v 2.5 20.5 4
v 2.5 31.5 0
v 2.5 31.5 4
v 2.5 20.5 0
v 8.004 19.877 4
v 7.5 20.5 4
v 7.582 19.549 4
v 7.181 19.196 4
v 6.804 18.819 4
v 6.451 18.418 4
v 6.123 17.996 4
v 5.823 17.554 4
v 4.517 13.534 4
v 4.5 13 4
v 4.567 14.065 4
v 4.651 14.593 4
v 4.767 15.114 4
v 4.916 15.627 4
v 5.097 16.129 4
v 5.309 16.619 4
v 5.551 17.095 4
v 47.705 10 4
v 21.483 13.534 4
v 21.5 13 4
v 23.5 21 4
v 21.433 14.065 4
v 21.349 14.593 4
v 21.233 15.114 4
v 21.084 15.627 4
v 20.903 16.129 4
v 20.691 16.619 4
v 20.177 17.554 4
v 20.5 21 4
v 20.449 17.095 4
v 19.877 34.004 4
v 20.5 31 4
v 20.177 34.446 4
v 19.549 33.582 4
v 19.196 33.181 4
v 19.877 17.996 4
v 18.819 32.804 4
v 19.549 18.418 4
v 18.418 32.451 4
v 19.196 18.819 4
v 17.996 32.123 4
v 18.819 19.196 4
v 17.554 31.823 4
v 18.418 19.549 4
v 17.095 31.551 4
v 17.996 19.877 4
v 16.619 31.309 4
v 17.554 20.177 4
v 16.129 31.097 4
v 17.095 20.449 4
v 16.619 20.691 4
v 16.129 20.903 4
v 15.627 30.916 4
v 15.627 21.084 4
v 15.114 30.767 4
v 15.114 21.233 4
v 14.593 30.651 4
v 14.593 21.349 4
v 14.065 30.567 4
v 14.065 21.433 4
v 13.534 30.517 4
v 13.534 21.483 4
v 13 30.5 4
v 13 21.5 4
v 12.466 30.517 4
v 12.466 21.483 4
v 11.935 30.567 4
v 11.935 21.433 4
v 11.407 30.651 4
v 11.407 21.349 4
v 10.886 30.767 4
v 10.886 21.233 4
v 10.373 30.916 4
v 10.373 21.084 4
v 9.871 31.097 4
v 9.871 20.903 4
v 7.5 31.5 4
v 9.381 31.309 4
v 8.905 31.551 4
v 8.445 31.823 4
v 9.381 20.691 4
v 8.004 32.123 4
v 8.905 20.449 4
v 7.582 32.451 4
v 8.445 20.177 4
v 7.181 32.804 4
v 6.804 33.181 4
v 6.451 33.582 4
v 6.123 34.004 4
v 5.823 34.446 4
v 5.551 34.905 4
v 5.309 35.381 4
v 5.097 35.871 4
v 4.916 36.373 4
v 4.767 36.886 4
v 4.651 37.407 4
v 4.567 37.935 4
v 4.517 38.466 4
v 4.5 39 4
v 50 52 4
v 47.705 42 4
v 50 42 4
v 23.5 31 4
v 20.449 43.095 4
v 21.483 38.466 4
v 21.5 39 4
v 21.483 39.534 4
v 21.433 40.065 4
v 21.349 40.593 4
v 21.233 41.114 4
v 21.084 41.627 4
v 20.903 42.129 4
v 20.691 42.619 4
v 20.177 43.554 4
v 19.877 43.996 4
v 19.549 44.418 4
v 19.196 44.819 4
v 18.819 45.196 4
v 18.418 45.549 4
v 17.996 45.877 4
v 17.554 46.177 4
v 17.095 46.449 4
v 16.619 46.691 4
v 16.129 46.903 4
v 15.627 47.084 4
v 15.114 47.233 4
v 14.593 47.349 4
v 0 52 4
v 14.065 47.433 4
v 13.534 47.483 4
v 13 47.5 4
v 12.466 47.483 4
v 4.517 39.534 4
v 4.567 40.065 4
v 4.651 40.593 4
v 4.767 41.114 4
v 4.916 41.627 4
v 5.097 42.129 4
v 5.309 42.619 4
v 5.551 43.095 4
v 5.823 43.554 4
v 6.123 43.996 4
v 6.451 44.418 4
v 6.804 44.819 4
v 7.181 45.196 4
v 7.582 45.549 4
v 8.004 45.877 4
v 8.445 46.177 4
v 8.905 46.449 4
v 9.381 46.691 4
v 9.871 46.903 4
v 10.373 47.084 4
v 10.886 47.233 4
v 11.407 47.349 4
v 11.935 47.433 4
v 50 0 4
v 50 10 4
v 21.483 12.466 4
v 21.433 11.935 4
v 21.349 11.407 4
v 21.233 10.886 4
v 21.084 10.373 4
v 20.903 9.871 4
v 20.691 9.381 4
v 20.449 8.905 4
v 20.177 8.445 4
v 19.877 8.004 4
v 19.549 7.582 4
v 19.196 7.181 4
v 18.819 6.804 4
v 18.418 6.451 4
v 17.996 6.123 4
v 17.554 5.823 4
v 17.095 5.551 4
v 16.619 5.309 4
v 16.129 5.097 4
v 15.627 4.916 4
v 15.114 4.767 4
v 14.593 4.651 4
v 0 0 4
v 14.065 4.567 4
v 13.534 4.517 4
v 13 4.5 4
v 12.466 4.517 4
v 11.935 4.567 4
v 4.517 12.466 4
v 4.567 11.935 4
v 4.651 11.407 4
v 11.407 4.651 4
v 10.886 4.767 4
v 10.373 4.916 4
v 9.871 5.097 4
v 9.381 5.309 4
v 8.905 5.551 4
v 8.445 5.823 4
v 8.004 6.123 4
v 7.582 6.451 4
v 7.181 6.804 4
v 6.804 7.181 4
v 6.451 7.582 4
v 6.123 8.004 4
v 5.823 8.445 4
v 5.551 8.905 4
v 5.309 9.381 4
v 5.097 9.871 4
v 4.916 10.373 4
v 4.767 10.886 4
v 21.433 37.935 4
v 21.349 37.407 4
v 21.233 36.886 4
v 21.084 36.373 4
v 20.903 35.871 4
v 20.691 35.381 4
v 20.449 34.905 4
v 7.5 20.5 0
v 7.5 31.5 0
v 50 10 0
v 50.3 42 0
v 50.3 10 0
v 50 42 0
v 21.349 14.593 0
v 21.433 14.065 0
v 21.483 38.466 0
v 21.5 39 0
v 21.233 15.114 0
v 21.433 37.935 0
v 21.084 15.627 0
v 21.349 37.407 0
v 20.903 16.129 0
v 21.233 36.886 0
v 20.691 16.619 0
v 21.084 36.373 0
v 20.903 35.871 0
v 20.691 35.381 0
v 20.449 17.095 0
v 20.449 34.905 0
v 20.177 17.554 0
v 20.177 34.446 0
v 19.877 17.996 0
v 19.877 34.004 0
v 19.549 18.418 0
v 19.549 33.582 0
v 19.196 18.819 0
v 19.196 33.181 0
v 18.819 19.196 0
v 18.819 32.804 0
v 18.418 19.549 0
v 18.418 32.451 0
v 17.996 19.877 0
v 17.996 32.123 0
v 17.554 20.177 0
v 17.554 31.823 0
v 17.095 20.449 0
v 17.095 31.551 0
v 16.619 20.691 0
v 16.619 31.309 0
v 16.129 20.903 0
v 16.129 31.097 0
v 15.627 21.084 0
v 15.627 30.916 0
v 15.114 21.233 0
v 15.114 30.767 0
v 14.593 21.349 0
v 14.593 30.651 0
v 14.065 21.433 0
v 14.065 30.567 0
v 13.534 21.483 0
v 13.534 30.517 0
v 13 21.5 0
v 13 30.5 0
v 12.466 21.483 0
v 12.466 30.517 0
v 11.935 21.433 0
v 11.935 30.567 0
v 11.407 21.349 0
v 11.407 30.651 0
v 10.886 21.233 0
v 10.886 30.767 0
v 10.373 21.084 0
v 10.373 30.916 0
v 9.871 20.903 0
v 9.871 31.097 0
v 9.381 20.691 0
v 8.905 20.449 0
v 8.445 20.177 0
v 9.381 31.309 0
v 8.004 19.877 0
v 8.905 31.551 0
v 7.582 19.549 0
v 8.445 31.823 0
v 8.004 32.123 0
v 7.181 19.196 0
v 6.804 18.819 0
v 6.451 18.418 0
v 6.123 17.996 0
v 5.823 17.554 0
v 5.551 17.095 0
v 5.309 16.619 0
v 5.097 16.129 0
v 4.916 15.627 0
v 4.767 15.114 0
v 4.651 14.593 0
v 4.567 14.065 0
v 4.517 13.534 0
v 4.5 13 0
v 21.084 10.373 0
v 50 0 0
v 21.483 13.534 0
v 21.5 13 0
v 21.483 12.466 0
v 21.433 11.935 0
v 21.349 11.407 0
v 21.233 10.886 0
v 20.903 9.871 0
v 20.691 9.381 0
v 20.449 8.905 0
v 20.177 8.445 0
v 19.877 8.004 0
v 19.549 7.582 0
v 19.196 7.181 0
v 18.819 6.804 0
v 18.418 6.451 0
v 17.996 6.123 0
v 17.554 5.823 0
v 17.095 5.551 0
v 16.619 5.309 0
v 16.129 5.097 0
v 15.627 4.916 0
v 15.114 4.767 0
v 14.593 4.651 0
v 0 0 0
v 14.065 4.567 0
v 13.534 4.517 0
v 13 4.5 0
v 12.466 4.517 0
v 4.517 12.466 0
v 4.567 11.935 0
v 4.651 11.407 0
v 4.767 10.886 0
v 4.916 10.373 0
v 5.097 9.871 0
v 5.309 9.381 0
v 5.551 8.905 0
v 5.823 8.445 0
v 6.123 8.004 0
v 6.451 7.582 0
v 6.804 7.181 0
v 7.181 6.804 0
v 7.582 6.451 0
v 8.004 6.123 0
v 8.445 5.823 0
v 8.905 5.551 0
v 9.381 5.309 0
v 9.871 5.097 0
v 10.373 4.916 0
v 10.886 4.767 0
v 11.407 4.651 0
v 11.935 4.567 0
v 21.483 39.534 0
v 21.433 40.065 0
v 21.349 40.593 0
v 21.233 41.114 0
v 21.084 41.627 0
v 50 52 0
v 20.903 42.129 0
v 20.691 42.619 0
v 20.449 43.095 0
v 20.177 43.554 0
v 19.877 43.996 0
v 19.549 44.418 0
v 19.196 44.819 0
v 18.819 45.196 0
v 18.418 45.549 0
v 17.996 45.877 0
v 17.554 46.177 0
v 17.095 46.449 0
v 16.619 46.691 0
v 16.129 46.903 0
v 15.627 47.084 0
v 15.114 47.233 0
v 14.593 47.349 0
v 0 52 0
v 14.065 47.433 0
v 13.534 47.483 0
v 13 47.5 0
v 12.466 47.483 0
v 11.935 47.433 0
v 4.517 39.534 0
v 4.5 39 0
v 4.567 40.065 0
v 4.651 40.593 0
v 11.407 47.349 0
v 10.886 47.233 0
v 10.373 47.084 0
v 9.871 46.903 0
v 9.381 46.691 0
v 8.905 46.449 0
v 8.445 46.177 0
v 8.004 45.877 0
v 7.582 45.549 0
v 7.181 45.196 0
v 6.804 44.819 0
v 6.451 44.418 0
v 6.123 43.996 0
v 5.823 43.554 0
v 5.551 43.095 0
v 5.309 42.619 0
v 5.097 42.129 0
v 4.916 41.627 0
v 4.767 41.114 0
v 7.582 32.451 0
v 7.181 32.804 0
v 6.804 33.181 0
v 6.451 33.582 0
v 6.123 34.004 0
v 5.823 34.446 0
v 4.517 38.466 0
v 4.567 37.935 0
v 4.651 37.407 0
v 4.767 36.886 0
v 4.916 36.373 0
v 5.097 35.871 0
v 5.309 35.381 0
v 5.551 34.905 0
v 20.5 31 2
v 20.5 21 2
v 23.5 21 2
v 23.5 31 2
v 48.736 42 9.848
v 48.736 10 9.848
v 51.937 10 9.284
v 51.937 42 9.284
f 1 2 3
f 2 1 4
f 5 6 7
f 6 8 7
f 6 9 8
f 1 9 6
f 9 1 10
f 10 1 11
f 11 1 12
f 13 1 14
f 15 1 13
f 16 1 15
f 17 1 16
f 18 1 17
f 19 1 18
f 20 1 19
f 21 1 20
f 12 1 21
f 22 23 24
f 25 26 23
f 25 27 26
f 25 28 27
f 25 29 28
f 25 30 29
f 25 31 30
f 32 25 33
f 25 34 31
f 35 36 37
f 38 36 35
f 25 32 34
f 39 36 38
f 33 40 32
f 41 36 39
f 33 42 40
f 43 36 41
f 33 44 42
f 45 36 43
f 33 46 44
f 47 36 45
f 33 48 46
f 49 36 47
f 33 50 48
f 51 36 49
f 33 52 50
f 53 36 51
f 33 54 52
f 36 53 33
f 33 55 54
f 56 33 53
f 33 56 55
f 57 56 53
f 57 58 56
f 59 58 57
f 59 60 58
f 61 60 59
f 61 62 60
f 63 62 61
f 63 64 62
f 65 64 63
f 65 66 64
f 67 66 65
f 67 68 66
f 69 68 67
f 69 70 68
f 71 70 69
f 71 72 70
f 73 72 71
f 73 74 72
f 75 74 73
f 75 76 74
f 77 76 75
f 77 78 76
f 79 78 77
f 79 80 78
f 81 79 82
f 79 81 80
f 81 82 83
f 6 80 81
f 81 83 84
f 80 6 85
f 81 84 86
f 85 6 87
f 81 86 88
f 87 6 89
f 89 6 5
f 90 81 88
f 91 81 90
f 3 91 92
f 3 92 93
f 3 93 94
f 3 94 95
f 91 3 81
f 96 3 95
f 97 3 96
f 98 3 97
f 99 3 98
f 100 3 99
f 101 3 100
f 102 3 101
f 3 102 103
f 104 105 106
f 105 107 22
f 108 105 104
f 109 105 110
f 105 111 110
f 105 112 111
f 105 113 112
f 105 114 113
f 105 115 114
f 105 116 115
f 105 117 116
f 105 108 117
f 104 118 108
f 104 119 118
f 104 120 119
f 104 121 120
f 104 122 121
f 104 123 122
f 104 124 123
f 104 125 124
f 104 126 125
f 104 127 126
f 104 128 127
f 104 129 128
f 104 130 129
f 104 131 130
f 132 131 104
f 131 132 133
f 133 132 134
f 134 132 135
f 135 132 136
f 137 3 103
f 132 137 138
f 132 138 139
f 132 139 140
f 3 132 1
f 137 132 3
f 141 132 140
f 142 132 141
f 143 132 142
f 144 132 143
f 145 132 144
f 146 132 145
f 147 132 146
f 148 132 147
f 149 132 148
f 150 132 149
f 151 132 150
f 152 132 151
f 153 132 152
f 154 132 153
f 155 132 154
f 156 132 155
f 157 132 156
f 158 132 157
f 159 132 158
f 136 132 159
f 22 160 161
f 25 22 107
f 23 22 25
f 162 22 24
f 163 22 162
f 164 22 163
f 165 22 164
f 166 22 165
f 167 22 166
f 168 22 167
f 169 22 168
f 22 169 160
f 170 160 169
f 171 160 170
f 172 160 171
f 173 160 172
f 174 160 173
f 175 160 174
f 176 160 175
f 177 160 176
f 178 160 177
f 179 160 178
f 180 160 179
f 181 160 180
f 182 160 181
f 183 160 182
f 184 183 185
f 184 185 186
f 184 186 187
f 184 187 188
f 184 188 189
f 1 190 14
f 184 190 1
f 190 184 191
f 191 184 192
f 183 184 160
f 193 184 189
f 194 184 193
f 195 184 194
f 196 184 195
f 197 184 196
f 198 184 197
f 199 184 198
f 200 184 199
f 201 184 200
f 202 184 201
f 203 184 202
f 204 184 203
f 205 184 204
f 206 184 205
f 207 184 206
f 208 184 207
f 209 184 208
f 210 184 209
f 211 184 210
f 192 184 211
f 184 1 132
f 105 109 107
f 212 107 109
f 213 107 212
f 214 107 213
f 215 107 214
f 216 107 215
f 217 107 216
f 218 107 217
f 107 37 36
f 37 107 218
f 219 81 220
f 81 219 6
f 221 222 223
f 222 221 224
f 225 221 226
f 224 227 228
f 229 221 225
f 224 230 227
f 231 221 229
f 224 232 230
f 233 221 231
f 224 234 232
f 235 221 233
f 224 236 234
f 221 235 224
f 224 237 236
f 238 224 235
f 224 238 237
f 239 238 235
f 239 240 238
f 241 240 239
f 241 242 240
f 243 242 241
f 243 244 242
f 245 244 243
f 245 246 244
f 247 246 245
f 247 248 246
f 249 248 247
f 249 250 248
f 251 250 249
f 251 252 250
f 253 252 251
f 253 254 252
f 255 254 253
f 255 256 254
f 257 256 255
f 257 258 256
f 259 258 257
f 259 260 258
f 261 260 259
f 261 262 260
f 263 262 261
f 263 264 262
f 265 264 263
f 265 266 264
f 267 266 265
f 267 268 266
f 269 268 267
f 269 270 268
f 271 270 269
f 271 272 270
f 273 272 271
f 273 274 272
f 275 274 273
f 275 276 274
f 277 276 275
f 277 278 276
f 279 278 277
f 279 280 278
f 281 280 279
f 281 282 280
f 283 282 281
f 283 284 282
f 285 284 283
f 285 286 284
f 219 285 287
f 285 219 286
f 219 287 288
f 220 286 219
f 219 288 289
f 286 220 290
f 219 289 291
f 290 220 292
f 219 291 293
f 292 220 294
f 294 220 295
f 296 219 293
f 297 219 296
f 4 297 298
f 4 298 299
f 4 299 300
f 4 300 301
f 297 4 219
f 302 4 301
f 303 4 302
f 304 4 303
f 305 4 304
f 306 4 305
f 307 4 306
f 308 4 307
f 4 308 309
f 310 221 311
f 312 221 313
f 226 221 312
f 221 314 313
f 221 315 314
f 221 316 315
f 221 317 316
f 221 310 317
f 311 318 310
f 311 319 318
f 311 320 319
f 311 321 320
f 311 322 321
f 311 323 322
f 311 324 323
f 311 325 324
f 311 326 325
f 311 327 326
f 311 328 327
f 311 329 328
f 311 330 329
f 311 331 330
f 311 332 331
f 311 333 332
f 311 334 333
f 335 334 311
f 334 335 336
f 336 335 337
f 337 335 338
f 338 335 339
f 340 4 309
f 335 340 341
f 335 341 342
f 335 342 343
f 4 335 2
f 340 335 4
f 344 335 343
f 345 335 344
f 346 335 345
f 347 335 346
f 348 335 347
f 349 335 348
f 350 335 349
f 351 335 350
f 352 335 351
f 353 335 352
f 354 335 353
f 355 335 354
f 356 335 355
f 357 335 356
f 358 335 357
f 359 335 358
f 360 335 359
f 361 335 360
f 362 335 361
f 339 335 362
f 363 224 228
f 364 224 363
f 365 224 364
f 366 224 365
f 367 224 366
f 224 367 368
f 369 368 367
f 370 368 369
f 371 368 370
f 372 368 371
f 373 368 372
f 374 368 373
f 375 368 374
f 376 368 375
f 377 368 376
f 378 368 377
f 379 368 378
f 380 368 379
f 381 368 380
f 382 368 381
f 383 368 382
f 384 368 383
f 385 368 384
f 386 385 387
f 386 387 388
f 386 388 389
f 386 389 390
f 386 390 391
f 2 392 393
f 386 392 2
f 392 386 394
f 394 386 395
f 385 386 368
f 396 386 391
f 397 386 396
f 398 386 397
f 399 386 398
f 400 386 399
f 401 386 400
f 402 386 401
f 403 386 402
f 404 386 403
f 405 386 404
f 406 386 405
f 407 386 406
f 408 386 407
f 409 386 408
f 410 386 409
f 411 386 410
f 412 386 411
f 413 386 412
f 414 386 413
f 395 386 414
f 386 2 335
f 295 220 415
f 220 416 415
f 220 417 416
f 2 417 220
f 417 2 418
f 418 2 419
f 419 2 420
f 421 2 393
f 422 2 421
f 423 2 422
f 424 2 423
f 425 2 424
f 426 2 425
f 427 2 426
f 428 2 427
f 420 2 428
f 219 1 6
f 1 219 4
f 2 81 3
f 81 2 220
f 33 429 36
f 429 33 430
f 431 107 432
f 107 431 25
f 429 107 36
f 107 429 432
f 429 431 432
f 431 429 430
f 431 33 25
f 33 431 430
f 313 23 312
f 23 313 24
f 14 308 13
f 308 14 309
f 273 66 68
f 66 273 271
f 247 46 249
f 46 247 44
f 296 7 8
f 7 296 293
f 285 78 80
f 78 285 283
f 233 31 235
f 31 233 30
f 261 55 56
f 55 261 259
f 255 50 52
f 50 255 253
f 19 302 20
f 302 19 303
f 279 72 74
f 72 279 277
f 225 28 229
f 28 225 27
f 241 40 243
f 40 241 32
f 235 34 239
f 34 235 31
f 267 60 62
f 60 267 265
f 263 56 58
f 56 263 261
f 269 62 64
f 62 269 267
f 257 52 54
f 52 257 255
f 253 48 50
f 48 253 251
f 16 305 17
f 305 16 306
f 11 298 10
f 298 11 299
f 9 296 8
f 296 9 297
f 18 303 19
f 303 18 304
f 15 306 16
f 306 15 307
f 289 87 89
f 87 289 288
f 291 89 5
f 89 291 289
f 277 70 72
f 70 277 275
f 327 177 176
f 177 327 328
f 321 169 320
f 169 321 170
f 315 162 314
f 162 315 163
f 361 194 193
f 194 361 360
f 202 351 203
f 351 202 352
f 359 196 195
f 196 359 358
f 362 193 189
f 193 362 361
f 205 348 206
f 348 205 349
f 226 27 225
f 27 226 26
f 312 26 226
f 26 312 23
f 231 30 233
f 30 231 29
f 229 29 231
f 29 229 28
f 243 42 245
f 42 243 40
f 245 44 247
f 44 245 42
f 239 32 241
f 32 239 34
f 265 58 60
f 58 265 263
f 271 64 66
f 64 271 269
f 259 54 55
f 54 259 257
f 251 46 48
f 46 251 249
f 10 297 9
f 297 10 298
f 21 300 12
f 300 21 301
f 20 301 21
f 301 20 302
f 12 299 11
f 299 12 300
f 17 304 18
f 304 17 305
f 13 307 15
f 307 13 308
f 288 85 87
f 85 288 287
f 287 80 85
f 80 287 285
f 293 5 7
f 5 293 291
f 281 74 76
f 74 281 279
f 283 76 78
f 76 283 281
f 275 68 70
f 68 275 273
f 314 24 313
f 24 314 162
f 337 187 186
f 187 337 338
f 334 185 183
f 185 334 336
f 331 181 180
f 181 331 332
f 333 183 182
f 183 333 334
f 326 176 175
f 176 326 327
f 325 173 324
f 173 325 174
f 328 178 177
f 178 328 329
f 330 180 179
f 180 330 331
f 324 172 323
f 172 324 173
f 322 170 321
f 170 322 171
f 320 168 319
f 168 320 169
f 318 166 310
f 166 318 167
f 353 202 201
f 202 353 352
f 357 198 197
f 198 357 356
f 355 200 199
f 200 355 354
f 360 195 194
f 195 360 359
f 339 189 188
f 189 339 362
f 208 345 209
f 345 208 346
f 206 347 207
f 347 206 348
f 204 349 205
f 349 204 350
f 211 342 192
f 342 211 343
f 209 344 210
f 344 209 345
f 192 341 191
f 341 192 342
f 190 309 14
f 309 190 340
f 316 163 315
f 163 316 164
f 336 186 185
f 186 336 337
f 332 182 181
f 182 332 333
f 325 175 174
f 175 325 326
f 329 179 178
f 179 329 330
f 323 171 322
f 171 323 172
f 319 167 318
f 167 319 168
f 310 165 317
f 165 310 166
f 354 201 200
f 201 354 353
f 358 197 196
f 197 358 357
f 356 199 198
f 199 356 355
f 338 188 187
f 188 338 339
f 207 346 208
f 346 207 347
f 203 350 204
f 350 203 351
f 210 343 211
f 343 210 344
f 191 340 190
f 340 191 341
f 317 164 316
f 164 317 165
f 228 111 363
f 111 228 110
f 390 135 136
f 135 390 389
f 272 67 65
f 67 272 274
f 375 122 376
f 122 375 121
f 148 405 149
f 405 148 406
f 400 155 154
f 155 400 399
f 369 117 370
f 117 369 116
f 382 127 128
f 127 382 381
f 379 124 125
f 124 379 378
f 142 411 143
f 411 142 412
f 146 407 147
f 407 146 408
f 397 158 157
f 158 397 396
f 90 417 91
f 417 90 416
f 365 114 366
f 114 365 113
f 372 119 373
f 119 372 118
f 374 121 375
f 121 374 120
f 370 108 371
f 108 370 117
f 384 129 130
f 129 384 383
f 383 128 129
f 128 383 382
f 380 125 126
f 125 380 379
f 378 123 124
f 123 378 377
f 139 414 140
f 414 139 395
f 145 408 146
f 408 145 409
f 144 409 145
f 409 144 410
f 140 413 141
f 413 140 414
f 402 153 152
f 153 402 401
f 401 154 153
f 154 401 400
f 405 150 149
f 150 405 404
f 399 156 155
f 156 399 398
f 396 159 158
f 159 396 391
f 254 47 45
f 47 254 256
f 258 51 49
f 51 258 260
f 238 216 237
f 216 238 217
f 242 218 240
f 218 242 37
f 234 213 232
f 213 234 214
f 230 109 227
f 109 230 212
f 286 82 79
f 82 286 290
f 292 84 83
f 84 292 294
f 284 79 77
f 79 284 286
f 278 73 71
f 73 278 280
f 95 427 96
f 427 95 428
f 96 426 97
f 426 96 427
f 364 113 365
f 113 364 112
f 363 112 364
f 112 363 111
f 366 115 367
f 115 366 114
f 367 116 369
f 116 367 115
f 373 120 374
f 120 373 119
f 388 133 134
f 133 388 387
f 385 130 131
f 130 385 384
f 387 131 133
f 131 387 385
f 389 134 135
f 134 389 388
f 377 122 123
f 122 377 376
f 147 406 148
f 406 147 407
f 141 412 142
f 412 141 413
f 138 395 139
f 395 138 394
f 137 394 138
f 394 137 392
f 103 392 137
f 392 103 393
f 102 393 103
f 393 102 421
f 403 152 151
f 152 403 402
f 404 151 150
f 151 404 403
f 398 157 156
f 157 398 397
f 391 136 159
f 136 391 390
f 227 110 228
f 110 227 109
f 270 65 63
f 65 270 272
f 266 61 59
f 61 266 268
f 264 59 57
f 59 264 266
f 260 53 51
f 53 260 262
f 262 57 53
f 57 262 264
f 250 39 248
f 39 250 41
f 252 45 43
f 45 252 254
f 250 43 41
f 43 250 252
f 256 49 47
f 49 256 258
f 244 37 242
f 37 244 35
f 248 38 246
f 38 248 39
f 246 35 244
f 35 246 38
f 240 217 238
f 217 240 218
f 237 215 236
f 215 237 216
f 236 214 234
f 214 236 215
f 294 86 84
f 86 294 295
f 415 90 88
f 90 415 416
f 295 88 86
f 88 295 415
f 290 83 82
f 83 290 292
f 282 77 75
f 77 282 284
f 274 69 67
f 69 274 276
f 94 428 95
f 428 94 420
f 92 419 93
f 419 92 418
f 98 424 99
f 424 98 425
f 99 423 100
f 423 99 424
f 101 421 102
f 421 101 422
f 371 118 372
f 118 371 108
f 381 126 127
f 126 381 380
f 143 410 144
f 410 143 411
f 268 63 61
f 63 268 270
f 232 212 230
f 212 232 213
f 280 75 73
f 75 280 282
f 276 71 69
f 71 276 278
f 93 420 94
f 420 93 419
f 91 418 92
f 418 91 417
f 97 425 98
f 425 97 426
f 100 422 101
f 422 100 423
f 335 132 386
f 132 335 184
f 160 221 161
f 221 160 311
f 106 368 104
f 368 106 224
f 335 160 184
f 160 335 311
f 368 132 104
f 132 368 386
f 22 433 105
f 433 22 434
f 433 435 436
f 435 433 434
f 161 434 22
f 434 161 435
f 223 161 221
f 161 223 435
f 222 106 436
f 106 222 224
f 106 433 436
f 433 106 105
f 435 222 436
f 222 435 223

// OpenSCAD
difference() {
        cube ([50,52,4]);
			translate([13,13,0]) {
	      	cylinder (h = 8, r=8.5, center = true, $fn=100);
				translate([0,26,0]) {
	      		cylinder (h = 8, r=8.5, center = true, $fn=100);
				}
				translate([-10.5,7.5,0]) {
					cube([5,11,4]);
					translate([18,0.5,2]) {
						cube([3,10,2]);
					}
				}
			}
}
translate([47,10,0]) {
    difference() {
        rotate([0,10,0]){
            cube([3.25,32,10]);
        }
        translate([0,0,-4]) {
            cube([5,32,4]);
        }
    }
}
